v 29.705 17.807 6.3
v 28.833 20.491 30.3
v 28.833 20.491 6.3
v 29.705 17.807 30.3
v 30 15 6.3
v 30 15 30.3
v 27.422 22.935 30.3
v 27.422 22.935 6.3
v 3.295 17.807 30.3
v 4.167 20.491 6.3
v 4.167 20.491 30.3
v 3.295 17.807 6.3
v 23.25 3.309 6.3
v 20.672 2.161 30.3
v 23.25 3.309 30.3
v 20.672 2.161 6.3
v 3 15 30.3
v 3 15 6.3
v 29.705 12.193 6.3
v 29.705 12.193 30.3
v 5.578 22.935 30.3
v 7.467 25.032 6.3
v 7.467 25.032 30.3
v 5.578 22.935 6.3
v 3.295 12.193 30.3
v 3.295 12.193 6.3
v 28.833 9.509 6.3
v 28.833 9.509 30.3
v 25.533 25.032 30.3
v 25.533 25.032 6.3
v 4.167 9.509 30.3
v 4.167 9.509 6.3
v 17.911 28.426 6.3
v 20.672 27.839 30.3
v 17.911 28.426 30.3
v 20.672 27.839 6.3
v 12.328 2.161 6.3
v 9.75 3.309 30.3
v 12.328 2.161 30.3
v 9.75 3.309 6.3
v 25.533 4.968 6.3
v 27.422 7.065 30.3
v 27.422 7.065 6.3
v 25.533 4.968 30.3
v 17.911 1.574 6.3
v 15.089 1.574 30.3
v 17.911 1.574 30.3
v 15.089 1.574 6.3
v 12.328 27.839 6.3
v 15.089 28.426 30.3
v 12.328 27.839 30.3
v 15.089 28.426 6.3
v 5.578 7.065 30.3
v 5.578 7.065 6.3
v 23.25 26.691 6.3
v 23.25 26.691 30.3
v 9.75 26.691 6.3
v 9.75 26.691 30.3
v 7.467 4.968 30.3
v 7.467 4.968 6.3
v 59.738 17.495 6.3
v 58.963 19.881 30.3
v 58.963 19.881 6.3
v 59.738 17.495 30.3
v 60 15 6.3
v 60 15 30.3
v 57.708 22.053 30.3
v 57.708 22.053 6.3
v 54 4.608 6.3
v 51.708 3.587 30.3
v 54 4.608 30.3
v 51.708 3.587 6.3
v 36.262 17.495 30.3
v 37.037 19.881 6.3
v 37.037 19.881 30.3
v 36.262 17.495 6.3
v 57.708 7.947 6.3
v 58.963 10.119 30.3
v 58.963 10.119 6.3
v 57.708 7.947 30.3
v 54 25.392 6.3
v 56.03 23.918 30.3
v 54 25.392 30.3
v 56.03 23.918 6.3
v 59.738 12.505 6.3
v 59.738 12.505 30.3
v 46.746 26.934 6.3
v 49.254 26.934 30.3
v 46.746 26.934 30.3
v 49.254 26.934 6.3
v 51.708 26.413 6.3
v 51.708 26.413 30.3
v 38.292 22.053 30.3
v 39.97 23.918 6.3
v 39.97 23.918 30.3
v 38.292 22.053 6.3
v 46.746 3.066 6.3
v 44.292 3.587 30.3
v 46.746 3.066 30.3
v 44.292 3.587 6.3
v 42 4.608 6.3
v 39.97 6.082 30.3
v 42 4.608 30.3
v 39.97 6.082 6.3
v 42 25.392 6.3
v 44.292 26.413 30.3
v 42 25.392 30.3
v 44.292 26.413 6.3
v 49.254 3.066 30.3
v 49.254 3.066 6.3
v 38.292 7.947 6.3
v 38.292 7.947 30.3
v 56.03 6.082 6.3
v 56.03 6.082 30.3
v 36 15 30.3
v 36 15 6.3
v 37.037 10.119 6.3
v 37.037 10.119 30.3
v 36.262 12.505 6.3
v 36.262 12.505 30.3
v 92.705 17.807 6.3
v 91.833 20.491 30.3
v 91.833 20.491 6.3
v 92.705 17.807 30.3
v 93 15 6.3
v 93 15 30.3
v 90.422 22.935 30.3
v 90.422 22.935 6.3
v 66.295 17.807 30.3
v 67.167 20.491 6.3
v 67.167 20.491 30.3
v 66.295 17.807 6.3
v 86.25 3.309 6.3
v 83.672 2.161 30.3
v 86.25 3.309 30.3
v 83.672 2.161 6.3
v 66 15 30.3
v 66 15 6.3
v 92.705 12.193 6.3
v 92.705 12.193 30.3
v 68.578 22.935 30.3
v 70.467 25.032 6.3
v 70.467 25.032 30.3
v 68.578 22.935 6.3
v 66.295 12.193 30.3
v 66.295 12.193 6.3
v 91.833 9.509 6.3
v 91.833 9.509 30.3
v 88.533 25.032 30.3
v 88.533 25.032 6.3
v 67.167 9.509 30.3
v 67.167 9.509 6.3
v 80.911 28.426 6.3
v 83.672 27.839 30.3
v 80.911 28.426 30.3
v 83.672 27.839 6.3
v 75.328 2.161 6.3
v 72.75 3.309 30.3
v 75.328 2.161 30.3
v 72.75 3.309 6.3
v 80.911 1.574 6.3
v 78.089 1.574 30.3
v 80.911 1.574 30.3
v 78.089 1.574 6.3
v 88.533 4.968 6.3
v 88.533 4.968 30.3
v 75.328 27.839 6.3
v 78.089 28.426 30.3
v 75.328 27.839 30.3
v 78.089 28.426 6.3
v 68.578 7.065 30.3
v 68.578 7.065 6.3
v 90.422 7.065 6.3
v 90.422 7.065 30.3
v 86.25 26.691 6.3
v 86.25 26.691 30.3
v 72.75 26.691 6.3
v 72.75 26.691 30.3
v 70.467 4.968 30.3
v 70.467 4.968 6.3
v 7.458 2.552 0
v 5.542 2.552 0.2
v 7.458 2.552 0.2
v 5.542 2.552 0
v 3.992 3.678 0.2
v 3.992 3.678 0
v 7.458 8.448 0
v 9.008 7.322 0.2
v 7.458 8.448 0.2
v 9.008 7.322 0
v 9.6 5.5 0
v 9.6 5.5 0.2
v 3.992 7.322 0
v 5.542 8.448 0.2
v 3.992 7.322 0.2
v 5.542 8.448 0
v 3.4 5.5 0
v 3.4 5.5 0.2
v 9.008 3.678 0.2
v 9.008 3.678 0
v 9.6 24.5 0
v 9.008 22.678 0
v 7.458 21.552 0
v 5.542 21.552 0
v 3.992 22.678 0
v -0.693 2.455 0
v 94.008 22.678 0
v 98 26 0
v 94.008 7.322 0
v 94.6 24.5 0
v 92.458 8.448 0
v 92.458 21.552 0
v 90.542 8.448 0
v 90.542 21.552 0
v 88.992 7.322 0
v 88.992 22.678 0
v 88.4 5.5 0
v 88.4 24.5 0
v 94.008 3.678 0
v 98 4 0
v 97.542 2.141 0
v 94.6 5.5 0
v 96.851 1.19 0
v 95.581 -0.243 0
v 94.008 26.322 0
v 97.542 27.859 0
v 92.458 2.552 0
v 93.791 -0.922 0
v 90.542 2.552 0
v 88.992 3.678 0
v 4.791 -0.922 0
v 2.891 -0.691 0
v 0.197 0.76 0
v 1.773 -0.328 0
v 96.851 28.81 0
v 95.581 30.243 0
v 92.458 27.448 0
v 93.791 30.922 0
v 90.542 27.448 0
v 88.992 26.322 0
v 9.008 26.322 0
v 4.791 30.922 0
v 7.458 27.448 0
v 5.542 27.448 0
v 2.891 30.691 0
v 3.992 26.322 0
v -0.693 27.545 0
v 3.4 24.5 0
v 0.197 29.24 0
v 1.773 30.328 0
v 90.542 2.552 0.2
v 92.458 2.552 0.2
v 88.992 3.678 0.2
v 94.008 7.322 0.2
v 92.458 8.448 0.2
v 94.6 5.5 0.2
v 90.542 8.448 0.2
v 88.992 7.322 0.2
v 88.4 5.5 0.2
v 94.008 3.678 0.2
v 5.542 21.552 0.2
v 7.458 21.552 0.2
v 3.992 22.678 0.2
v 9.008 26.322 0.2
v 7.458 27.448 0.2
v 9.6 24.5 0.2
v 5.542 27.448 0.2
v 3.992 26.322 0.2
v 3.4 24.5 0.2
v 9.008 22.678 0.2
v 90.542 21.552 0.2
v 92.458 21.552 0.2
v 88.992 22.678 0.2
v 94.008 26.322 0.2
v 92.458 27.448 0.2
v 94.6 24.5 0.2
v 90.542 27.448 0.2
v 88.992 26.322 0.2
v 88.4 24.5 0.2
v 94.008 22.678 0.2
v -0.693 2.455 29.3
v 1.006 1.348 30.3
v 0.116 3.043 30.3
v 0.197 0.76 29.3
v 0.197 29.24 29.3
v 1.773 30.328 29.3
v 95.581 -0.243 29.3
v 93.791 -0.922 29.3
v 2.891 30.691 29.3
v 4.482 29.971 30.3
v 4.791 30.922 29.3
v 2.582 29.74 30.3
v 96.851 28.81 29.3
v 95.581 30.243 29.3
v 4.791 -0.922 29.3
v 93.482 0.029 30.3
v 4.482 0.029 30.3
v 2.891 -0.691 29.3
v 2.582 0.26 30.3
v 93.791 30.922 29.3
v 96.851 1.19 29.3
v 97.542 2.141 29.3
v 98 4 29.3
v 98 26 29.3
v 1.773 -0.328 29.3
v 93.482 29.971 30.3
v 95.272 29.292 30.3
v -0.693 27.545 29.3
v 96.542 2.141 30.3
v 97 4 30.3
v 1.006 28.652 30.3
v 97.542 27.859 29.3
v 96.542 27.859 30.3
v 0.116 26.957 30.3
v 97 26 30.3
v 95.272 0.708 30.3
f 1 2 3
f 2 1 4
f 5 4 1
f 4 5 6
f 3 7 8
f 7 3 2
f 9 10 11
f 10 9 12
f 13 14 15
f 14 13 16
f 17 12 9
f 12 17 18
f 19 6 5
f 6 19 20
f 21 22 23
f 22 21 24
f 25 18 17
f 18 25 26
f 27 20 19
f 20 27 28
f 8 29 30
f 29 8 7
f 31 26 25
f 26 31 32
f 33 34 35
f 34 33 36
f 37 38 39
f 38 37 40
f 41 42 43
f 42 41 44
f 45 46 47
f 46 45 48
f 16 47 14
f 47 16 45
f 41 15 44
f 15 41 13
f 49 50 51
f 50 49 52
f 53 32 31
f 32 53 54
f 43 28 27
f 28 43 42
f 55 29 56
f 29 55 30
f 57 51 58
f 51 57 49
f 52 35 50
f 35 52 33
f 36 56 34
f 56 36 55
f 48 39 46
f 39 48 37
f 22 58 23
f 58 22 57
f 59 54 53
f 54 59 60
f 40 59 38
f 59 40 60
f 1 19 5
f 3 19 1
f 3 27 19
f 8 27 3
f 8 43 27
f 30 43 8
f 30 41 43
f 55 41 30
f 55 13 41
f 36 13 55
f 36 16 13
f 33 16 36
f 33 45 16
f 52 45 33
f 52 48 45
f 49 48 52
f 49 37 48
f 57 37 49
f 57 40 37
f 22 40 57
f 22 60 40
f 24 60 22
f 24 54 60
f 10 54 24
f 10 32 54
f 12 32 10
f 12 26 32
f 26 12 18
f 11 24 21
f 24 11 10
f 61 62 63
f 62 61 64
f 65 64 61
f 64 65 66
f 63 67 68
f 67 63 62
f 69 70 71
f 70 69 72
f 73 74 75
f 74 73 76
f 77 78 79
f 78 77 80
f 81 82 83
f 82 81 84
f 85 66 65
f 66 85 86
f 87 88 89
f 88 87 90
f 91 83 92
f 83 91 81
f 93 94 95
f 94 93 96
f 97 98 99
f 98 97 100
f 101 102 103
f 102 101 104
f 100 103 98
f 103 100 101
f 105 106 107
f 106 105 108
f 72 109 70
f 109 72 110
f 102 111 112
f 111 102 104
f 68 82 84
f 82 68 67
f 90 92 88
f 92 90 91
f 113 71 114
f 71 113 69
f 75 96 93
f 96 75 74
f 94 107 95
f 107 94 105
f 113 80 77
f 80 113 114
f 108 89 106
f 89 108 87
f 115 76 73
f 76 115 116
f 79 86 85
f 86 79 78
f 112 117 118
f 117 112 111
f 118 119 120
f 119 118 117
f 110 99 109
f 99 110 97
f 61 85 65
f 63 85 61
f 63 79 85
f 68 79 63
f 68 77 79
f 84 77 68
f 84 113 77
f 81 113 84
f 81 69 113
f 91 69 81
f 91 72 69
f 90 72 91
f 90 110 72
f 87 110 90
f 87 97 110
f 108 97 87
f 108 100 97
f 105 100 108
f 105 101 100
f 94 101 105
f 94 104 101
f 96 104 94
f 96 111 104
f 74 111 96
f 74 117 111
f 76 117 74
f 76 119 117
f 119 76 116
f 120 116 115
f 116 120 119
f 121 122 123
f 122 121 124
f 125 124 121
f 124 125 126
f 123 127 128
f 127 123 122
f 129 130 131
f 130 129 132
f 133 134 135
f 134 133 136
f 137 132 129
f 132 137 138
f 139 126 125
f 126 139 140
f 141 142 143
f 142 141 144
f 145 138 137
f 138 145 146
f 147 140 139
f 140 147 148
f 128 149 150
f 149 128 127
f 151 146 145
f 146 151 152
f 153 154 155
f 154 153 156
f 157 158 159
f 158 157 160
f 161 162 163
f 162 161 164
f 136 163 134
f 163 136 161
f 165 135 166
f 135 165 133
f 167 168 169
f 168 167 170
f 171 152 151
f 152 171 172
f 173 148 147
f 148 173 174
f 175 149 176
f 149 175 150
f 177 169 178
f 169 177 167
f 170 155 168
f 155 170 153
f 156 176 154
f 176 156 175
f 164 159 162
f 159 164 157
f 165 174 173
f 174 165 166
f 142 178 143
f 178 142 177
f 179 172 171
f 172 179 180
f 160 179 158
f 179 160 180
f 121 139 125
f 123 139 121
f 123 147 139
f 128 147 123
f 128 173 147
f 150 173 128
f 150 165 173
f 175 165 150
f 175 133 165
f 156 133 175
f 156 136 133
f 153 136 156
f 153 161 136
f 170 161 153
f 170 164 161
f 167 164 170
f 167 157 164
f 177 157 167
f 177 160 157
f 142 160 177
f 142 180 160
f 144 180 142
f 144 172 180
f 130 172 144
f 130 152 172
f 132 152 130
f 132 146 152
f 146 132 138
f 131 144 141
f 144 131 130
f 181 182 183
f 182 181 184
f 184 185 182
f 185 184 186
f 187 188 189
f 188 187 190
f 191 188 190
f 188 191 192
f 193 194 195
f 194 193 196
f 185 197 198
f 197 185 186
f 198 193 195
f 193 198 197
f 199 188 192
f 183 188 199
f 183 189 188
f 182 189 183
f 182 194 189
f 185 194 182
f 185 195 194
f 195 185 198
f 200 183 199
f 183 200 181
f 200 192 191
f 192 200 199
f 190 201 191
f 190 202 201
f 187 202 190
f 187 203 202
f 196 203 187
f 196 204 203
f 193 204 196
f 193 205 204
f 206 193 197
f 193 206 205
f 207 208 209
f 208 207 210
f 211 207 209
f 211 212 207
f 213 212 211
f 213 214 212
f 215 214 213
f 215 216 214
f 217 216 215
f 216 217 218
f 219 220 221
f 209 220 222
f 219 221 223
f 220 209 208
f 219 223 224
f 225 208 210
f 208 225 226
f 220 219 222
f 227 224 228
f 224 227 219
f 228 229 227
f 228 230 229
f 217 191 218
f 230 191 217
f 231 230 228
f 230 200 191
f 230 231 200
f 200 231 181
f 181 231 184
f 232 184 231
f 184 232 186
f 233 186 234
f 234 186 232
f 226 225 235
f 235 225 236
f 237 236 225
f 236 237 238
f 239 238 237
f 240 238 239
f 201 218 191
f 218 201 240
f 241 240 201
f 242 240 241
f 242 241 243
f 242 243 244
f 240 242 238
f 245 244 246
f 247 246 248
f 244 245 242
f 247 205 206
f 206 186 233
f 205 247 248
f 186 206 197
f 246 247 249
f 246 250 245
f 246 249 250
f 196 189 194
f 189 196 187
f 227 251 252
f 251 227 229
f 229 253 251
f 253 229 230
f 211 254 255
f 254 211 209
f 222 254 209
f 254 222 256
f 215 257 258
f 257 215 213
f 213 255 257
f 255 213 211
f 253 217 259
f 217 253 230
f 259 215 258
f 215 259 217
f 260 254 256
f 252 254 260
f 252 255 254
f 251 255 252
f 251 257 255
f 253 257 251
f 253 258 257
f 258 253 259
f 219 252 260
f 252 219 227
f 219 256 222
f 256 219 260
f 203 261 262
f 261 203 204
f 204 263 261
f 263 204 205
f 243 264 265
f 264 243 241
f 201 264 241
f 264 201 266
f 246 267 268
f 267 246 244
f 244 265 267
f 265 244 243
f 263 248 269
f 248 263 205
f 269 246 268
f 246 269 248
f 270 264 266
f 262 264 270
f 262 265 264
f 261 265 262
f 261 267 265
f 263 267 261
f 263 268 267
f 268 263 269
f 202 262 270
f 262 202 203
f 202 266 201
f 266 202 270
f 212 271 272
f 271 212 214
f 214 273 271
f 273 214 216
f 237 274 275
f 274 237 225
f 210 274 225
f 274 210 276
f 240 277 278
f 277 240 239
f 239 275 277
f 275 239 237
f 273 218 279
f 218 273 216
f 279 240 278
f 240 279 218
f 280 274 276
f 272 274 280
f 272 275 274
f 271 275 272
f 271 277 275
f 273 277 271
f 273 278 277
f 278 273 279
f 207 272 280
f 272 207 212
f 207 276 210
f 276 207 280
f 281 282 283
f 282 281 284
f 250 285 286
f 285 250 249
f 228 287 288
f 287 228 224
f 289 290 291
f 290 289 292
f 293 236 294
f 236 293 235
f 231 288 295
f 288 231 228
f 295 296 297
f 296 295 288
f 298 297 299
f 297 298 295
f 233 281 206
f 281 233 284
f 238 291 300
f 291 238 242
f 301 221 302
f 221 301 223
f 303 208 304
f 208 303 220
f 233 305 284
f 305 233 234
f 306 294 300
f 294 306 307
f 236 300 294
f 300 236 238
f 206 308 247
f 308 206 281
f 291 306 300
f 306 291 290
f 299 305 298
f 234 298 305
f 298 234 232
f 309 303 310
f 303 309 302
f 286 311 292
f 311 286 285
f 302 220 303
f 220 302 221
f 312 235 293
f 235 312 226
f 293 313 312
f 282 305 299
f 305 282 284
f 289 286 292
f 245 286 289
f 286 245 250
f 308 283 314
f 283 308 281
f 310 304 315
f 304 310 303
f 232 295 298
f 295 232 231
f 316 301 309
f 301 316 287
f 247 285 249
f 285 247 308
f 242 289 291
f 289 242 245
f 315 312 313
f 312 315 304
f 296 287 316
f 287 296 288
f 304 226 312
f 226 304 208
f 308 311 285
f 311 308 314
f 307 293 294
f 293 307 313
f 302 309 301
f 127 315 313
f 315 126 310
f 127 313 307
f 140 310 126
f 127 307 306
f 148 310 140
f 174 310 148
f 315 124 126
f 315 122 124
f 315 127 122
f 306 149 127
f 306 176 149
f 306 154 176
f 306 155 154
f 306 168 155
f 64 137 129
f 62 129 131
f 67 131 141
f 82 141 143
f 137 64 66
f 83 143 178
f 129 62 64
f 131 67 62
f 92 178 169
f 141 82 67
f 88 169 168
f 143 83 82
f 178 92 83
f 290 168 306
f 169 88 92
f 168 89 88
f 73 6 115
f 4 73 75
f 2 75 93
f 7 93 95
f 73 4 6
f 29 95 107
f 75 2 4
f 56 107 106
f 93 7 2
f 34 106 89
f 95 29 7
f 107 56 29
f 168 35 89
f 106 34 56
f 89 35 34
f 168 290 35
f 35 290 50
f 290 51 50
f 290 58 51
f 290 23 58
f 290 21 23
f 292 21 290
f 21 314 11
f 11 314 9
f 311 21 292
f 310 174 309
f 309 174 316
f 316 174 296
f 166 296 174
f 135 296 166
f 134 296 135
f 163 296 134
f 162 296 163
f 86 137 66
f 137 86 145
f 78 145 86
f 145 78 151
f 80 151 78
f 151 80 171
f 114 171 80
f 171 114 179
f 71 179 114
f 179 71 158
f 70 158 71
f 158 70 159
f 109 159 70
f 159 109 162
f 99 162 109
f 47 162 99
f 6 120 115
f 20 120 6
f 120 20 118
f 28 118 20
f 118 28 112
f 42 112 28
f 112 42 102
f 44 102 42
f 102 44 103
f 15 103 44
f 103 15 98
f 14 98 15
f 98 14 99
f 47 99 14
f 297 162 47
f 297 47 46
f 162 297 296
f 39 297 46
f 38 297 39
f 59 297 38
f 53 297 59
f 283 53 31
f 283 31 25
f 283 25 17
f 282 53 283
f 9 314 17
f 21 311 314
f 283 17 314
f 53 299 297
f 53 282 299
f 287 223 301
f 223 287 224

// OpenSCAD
// Define the dimensions of the object
corner_radius = 5;
chamfer_size = 1;

// Define the dimensions of the holes
hole_diameter = 27;
hole_height = 25;
height = hole_height + 4.3 + 2;

// Calculate the spacing between the holes
hole_spacing = 6;
depth = hole_diameter + hole_spacing/2;
width = 3*hole_diameter + 3*hole_spacing;

corner_hole_diameter = 6.2;
corner_hole_depth = 0.2;
corner_hole_offset = 5.5;

// Create the main object with rounded corners
module rounded_rectangle(width, depth, height, corner_radius) {
    hull() {
        translate([corner_radius, corner_radius, 0])
            cylinder(h = height, r = corner_radius);
        translate([width - corner_radius, corner_radius, 0])
            cylinder(h = height, r = corner_radius);
        translate([corner_radius, depth - corner_radius, 0])
            cylinder(h = height, r = corner_radius);
        translate([width - corner_radius, depth - corner_radius, 0])
            cylinder(h = height, r = corner_radius);
    }
}

// Create the main object with chamfers
module chamfered_rectangle(width, depth, height, corner_radius, chamfer_size) {
    minkowski() {
        rounded_rectangle(width - 2 * chamfer_size, depth - 0 * chamfer_size, height - 2 * chamfer_size, corner_radius - chamfer_size);
        cylinder(h = chamfer_size, r1 = chamfer_size, r2 = 0);
    }
}

// Create the holes
module holes() {
    for (i = [0 : 2]) {
        translate([(width - 3 * hole_diameter - 1 * hole_spacing) / 2 + i * (hole_diameter + hole_spacing*.75)+1.75*hole_spacing, depth / 2, height - hole_height])
            cylinder(h = hole_height, d = hole_diameter - 3*(i%2));
    }
}

// Create the corner holes
module corner_holes() {
    translate([chamfer_size + corner_hole_offset, corner_hole_offset, 0])
        cylinder(h = corner_hole_depth, d = corner_hole_diameter);
    translate([width - 2*chamfer_size - corner_hole_offset, corner_hole_offset, 0])
        cylinder(h = corner_hole_depth, d = corner_hole_diameter);
    translate([chamfer_size + corner_hole_offset, depth - corner_hole_offset, 0])
        cylinder(h = corner_hole_depth, d = corner_hole_diameter);
    translate([width - 2*chamfer_size - corner_hole_offset, depth - corner_hole_offset, 0])
        cylinder(h = corner_hole_depth, d = corner_hole_diameter);
}

// Create the final object
difference() {
    chamfered_rectangle(width, depth, height, corner_radius, chamfer_size);
    holes();
    corner_holes();
}
